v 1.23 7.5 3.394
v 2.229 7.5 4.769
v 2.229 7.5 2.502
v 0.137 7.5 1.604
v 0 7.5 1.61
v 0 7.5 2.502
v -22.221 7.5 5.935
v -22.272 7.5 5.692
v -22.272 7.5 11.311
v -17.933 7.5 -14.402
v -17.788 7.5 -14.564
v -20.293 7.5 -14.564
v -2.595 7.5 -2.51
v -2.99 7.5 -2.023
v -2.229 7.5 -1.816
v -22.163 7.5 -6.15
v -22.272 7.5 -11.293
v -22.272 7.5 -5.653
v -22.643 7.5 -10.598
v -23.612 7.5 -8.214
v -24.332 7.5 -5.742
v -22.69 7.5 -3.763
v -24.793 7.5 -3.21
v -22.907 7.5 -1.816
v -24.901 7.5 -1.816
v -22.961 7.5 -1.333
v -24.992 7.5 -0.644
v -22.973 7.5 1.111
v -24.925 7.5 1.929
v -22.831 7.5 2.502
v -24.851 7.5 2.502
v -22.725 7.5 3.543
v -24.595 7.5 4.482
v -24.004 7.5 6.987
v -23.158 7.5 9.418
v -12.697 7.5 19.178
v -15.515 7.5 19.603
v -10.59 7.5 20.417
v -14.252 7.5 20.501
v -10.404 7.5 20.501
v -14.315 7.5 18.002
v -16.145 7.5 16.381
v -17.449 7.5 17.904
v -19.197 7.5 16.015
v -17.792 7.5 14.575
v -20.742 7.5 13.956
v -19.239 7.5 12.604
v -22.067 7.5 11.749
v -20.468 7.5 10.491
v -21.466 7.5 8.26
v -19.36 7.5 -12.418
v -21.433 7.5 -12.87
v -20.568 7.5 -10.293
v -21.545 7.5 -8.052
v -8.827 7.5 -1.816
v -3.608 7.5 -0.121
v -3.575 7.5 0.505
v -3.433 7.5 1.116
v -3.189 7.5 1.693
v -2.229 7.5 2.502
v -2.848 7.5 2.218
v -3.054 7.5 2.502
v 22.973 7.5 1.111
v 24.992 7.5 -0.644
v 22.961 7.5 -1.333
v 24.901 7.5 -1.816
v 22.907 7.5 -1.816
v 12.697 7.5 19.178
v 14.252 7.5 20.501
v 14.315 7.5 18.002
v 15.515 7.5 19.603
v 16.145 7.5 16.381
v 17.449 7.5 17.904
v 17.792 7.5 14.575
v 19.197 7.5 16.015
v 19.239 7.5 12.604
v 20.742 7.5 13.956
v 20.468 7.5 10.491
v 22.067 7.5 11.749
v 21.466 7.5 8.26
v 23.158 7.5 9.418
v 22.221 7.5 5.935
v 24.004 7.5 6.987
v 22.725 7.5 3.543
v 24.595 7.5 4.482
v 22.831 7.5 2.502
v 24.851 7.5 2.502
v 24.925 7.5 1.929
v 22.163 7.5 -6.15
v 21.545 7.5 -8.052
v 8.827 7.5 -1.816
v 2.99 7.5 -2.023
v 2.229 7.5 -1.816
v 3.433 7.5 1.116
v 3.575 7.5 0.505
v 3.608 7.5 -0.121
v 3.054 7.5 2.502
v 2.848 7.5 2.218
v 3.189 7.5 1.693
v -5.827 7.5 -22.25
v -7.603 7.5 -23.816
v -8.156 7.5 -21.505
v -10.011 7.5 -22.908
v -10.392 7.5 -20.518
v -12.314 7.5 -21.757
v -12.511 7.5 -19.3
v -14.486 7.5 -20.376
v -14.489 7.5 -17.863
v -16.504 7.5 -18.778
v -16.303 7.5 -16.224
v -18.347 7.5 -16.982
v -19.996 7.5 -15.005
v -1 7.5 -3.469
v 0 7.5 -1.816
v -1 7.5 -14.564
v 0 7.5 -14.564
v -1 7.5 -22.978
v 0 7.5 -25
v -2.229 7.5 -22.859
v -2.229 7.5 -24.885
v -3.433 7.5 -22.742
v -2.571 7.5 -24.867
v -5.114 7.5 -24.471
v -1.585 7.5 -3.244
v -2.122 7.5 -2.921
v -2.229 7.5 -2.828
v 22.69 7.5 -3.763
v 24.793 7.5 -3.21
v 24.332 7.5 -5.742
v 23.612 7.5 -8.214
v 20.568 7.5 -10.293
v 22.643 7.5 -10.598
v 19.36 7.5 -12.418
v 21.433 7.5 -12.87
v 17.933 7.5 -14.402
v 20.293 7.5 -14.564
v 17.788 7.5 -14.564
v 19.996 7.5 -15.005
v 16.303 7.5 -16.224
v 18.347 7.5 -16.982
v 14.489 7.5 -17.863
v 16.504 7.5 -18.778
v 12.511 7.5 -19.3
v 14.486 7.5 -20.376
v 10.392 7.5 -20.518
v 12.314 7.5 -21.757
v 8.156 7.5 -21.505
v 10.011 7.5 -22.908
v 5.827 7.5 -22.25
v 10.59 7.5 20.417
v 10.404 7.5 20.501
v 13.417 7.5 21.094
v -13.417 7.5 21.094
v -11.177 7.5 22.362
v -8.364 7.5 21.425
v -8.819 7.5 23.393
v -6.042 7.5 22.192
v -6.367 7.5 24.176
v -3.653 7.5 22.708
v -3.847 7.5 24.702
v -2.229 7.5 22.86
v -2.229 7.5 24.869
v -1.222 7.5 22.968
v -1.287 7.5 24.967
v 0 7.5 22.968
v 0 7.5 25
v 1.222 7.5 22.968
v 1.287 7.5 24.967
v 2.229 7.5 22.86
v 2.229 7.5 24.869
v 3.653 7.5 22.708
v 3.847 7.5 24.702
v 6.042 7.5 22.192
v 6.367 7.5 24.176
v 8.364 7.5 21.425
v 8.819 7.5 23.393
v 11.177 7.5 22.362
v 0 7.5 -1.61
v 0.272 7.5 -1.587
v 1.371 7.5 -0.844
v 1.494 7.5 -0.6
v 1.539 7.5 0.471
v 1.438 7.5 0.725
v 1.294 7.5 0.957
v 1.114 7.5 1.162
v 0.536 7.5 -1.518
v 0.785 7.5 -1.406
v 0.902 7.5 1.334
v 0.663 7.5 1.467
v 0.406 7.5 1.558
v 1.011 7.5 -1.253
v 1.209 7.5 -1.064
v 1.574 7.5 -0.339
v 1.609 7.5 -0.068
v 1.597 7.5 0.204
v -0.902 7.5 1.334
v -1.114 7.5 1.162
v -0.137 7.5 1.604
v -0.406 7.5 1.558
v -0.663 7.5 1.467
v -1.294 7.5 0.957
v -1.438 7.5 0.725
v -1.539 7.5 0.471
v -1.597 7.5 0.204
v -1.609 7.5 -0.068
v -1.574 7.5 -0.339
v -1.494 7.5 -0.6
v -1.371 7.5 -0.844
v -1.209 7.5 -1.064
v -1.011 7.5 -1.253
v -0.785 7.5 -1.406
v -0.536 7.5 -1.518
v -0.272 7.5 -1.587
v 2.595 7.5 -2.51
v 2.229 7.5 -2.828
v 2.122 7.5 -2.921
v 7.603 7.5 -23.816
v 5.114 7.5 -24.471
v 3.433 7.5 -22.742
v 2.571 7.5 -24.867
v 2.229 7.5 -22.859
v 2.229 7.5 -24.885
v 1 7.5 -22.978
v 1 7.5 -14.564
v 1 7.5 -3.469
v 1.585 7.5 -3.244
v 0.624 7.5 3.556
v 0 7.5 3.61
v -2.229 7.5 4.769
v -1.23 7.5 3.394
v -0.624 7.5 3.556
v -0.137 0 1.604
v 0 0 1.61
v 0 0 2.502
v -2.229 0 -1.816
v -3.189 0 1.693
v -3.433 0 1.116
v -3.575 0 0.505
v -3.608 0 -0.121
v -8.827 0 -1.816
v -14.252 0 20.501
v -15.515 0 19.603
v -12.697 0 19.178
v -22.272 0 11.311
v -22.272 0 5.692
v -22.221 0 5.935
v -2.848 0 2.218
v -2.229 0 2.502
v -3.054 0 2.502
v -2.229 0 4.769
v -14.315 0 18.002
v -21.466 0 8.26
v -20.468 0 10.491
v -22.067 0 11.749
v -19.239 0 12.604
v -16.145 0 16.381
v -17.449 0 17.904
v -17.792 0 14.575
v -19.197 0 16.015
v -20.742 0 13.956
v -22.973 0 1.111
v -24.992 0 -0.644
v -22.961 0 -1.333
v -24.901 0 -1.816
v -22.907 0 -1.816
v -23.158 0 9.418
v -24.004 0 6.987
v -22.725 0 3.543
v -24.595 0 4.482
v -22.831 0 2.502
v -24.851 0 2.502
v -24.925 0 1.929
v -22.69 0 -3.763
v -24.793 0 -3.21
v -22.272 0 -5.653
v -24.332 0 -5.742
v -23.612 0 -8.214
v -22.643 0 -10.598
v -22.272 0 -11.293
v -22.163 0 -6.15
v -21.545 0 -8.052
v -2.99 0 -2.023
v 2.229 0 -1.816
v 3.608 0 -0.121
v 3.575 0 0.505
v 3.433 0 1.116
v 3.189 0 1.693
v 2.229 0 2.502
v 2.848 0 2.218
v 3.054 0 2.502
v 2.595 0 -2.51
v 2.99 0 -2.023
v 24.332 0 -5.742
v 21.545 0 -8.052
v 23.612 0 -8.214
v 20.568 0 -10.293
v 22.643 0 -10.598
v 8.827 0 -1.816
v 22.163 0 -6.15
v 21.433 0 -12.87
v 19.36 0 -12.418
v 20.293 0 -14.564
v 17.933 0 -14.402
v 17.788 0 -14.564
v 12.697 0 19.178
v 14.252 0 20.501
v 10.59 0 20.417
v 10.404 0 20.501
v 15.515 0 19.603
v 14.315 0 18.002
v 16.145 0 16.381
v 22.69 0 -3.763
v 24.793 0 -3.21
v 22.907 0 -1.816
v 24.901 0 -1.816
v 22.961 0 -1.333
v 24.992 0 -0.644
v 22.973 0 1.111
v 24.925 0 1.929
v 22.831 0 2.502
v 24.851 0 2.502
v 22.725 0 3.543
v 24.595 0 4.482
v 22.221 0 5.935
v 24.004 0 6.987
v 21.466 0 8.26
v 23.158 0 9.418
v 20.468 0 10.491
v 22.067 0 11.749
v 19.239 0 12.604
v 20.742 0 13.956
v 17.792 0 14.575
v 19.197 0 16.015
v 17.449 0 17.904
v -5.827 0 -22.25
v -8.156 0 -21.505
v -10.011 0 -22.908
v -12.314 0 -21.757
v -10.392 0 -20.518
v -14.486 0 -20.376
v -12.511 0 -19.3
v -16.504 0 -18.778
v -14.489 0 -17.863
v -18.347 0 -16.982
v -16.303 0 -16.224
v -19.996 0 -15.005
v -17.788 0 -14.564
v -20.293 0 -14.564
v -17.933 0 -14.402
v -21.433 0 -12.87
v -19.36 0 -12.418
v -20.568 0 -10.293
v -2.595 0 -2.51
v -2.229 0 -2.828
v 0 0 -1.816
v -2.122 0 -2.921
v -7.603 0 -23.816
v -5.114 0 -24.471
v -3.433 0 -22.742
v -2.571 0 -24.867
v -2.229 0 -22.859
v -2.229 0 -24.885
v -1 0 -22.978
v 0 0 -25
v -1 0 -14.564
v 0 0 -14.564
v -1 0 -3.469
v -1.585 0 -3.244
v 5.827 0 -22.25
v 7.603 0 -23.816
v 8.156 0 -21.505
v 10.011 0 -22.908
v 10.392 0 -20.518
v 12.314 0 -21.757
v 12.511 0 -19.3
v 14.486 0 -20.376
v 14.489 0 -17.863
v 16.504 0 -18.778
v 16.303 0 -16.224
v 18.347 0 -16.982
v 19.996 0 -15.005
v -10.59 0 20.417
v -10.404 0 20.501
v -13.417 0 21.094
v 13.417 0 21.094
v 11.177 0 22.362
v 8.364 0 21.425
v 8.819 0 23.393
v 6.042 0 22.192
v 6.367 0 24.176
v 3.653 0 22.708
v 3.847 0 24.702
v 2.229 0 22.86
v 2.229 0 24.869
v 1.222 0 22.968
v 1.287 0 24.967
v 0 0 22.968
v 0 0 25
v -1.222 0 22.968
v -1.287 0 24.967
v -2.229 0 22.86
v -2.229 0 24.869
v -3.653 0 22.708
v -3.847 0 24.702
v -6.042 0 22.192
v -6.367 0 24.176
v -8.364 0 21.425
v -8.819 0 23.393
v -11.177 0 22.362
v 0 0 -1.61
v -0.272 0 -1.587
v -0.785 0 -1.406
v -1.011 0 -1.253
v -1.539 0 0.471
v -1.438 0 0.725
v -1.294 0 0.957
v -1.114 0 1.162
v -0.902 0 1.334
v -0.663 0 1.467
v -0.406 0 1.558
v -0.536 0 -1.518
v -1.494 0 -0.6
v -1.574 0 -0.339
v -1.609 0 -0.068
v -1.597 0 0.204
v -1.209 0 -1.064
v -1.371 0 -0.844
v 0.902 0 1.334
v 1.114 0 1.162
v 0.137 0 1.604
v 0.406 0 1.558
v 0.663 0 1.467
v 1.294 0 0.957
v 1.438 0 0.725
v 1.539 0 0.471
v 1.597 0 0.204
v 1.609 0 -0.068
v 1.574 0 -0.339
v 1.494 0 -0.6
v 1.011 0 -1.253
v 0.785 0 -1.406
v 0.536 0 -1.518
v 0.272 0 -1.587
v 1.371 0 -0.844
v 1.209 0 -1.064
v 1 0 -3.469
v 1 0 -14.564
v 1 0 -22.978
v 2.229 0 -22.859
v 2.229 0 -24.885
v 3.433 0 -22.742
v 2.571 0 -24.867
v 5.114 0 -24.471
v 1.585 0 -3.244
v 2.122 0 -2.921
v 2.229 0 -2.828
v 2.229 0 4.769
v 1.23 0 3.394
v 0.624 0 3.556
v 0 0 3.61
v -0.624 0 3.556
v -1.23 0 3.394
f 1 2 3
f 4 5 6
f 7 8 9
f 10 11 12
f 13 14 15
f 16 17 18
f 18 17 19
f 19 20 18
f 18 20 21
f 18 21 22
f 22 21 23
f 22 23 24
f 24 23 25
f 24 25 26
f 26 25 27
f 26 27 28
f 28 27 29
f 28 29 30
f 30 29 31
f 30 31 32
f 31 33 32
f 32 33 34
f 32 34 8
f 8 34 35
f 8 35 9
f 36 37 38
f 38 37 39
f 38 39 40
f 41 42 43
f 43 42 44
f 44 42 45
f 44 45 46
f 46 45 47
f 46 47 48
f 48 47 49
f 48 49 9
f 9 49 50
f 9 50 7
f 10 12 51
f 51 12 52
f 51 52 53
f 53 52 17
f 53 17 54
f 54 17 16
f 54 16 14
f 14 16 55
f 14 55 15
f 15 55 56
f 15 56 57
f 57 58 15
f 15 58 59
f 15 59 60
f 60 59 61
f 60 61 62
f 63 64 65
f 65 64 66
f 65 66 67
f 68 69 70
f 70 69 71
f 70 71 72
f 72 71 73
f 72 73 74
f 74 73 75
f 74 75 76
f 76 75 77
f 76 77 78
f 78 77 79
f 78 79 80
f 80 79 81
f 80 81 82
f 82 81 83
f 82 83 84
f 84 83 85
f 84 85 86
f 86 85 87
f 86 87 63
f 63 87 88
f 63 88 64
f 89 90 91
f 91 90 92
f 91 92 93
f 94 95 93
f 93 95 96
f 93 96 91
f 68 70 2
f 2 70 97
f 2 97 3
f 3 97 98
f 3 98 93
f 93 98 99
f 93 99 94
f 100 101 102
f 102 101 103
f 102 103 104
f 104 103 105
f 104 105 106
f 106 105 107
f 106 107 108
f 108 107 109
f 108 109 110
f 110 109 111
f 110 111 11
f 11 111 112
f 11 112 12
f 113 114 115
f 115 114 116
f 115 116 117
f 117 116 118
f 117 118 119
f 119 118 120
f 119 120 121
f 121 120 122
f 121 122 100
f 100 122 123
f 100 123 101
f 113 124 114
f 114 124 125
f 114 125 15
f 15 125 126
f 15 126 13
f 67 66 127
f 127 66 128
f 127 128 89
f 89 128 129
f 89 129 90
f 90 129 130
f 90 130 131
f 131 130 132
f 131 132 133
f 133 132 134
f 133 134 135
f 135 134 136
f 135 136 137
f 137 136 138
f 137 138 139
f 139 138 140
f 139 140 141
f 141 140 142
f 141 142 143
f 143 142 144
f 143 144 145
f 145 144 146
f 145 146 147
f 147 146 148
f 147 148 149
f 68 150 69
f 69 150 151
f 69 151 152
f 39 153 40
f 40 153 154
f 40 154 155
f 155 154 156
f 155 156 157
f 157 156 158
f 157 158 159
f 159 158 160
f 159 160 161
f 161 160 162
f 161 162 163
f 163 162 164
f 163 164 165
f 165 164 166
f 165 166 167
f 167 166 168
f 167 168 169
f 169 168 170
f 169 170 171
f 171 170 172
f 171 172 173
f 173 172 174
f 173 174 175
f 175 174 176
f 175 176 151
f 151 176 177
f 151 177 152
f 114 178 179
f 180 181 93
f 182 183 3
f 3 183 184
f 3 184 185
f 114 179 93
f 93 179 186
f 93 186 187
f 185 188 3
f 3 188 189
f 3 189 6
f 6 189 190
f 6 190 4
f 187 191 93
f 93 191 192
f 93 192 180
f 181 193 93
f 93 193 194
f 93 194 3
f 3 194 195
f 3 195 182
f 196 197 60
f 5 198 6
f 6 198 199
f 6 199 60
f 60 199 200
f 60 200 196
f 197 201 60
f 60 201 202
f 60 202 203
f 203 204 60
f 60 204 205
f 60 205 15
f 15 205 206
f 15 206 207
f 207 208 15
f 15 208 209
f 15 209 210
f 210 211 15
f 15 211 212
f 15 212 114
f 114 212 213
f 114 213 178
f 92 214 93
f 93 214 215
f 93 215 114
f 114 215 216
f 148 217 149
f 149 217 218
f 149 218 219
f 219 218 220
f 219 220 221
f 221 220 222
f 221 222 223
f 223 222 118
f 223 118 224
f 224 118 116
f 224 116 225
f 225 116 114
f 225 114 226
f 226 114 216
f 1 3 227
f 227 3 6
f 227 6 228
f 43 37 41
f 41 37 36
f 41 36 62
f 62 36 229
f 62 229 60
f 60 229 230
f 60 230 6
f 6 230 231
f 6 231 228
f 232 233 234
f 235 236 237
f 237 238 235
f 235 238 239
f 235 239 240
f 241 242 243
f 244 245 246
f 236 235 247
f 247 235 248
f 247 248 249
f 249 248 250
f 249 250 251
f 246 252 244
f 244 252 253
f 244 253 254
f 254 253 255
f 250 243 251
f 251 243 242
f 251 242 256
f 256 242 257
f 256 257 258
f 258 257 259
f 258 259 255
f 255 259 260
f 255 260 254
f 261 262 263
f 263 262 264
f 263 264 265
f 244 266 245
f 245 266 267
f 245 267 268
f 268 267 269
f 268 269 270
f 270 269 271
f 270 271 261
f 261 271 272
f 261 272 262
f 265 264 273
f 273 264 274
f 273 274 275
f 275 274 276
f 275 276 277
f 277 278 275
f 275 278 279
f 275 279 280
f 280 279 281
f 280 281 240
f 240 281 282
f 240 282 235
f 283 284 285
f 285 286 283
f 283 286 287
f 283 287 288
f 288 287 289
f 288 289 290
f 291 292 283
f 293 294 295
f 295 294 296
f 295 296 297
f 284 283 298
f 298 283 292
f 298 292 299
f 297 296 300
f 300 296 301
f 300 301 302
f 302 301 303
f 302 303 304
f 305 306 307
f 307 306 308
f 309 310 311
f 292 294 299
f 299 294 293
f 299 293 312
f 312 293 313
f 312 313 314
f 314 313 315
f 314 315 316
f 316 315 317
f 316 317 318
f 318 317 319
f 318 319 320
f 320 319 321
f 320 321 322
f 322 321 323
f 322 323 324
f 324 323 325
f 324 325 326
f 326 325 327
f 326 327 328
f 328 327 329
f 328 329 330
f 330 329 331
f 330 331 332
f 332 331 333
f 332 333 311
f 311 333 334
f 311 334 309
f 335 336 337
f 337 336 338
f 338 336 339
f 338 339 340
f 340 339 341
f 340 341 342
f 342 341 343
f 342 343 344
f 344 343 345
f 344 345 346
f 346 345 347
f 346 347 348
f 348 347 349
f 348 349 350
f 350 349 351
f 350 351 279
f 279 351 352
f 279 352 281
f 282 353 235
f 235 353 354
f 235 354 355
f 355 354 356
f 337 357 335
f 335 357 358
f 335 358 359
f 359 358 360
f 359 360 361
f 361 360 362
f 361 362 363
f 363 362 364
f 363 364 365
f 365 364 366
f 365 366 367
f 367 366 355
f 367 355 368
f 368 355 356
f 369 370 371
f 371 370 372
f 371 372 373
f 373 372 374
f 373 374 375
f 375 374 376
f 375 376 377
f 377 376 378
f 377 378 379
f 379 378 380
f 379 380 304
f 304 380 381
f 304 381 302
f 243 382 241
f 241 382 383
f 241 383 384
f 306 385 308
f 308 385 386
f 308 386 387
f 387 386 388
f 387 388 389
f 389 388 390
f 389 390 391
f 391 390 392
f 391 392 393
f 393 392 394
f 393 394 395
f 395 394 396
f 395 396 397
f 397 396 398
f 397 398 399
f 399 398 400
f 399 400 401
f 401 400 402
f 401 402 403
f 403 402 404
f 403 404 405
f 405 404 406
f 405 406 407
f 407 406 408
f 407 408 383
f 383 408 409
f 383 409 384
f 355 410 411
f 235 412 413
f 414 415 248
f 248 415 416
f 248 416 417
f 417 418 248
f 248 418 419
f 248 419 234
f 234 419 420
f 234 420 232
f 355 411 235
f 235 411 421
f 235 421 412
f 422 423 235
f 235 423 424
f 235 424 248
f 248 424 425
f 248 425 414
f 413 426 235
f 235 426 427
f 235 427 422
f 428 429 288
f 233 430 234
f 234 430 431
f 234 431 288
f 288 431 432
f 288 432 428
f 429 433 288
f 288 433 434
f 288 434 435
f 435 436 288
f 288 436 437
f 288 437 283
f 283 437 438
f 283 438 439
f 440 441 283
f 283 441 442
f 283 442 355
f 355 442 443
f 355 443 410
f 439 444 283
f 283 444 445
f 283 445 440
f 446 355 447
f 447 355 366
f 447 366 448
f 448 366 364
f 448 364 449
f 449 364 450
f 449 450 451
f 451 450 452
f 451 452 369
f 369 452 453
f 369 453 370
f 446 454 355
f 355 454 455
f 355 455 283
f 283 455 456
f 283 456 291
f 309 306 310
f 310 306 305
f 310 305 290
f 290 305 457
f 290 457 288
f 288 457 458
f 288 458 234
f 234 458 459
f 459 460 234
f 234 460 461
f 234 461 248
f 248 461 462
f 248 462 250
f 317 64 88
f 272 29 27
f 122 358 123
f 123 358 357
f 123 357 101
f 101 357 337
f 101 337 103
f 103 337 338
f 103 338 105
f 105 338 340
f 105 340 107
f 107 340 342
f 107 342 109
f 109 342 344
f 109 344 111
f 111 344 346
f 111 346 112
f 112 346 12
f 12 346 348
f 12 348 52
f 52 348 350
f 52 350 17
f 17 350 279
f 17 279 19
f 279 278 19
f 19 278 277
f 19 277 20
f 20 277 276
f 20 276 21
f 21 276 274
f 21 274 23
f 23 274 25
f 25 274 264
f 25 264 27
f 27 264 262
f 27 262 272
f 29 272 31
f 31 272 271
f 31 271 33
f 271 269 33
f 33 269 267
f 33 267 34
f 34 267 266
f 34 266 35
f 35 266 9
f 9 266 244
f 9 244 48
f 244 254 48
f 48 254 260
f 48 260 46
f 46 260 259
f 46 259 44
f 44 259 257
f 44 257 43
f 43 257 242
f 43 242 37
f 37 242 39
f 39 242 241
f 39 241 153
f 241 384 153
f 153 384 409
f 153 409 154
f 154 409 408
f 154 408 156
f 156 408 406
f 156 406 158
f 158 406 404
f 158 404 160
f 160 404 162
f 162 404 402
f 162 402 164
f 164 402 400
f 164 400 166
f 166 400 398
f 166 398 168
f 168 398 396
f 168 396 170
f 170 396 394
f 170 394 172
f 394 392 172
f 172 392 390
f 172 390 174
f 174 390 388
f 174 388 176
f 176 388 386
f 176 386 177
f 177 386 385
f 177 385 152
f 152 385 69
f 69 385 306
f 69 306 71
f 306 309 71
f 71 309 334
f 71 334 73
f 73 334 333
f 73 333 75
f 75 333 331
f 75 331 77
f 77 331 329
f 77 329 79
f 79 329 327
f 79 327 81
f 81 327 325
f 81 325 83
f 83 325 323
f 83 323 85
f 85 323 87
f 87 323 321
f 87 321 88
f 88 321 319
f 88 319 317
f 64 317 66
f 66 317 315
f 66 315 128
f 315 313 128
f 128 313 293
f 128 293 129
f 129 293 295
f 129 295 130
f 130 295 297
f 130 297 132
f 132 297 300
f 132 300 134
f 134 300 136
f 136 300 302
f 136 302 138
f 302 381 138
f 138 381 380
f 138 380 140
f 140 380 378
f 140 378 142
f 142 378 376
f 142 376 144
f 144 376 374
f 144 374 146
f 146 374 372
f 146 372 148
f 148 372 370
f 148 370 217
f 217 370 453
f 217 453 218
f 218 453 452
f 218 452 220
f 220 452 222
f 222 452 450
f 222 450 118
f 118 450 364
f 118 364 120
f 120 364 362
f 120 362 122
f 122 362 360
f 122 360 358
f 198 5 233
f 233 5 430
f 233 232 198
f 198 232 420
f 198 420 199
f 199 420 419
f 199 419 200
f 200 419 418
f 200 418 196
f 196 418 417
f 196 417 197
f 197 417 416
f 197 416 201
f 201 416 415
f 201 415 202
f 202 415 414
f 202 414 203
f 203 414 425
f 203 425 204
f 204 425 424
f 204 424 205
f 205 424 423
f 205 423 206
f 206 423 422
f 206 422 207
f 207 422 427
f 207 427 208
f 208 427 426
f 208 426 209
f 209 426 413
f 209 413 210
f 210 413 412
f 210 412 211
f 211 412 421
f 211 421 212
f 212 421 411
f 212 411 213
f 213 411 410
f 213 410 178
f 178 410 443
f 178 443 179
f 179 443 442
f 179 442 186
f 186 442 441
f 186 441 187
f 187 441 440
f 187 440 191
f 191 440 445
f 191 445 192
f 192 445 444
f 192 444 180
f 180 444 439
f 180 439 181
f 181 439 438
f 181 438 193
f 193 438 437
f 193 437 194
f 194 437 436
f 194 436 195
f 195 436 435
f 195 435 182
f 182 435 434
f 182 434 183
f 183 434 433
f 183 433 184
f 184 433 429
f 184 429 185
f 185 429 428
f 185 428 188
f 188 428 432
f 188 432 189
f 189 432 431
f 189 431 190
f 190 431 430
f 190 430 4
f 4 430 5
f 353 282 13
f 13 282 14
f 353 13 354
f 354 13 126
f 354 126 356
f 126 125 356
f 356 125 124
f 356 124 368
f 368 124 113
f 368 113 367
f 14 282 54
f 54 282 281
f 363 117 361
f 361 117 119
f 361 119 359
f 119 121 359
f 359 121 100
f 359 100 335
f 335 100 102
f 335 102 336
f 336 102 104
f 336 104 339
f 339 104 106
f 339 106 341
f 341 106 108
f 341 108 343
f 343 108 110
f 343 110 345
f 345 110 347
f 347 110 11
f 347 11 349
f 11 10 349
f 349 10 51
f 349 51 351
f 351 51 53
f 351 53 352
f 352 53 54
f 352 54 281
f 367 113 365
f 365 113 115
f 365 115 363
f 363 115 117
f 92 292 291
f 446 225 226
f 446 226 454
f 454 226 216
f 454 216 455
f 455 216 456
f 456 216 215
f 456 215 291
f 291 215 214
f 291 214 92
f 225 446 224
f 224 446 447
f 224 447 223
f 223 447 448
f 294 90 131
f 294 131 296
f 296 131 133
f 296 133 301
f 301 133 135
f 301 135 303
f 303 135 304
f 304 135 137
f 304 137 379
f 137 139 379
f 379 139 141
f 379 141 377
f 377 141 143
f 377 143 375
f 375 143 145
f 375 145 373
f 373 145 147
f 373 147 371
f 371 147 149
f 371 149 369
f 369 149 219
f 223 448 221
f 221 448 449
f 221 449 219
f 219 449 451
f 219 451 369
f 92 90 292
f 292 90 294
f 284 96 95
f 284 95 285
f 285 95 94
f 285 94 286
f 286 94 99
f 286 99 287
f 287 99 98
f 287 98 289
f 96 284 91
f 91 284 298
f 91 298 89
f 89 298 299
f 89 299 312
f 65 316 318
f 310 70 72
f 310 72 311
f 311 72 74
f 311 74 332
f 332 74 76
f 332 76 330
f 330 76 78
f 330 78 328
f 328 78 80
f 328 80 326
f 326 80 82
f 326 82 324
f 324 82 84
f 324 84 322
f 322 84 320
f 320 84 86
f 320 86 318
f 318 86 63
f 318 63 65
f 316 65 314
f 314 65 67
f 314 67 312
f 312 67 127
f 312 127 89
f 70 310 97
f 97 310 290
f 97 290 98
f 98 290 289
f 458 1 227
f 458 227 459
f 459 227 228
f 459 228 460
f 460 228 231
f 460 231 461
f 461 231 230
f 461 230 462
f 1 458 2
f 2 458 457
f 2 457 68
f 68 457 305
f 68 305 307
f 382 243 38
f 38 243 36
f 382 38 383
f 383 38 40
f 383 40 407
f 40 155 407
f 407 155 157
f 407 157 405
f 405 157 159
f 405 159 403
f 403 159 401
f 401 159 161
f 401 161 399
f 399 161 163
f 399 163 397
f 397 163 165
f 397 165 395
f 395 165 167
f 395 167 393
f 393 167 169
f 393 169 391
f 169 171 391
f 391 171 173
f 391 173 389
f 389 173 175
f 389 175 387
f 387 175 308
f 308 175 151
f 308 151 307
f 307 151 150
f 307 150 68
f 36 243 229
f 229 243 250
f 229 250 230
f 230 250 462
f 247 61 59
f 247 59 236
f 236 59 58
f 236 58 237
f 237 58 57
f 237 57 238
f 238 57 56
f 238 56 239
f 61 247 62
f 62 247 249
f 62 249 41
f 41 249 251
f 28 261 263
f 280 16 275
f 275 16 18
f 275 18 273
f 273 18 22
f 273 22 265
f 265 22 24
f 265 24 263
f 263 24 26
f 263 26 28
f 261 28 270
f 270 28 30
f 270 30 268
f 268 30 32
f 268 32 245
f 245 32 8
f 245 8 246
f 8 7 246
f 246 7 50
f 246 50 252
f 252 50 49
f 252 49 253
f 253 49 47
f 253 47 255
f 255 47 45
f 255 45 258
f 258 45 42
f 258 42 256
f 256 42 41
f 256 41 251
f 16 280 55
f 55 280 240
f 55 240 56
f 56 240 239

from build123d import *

# Parameters (mm, degrees)
SKETCH1_R           = 25
SKETCH1_R_2         = 1.61
BOSS_EXTRUDE1_DEPTH = 7.5
CUT_EXTRUDE2_DEPTH  = 10


with BuildPart() as part:
    # Sketch1 → Boss-Extrude1 (new body)
    with BuildSketch(Plane(origin=(0, 0, 0), x_dir=(1, 0, 0), z_dir=(0, 1, 0))):
        Circle(SKETCH1_R)
        Circle(SKETCH1_R_2, mode=Mode.SUBTRACT)
    extrude(amount=BOSS_EXTRUDE1_DEPTH)

    # Sketch2 → Cut-Extrude2 (cut)
    with BuildSketch(Plane(origin=(0, 7.5, 0), x_dir=(1, 0, 0), z_dir=(0, 1, 0))):
        with BuildLine():
            Line((-1, 3.468731757), (-1, 22.978250586))
            ThreePointArc((-1, 22.978250586), (-13.519060803, 18.607390871), (-21.544597959, 8.051726448))
            Line((-21.544597959, 8.051726448), (-2.989942946, 2.022953578))
            ThreePointArc((-2.989942946, 2.022953578), (-2.121904761, 2.92055135), (-1, 3.468731757))
        make_face()
        with BuildLine():
            ThreePointArc((21.544597959, 8.051726448), (13.519060803, 18.607390871), (1, 22.978250586))
            Line((1, 22.978250586), (1, 3.468731757))
            ThreePointArc((1, 3.468731757), (2.121904761, 2.92055135), (2.989942946, 2.022953578))
            Line((2.989942946, 2.022953578), (21.544597959, 8.051726448))
        make_face()
        with BuildLine():
            ThreePointArc((23, 0), (22.789696518, 3.103181046), (22.162631947, 6.149613416))
            Line((22.162631947, 6.149613416), (3.607976935, 0.120840545))
            ThreePointArc((3.607976935, 0.120840545), (3.609494198, 0.060428739), (3.61, 0))
            ThreePointArc((3.61, 0), (3.41415947, -1.172866195), (2.847886365, -2.218477688))
            Line((2.847886365, -2.218477688), (14.315293812, -18.002009973))
            ThreePointArc((14.315293812, -18.002009973), (20.715353698, -9.993704076), (23, 0))
        make_face()
        with BuildLine():
            Line((-1.229852376, -3.394048192), (-12.697259824, -19.177580477))
            ThreePointArc((-12.697259824, -19.177580477), (0, -23), (12.697259824, -19.177580477))
            Line((12.697259824, -19.177580477), (1.229852376, -3.394048192))
            ThreePointArc((1.229852376, -3.394048192), (0, -3.61), (-1.229852376, -3.394048192))
        make_face()
        with BuildLine():
            Line((-3.607976935, 0.120840545), (-22.162631947, 6.149613416))
            ThreePointArc((-22.162631947, 6.149613416), (-21.874299875, -7.107390871), (-14.315293812, -18.002009973))
            Line((-14.315293812, -18.002009973), (-2.847886365, -2.218477688))
            ThreePointArc((-2.847886365, -2.218477688), (-3.433314024, -1.11555135), (-3.607976935, 0.120840545))
        make_face()
    extrude(amount=-CUT_EXTRUDE2_DEPTH, mode=Mode.SUBTRACT)


solid = part.part
